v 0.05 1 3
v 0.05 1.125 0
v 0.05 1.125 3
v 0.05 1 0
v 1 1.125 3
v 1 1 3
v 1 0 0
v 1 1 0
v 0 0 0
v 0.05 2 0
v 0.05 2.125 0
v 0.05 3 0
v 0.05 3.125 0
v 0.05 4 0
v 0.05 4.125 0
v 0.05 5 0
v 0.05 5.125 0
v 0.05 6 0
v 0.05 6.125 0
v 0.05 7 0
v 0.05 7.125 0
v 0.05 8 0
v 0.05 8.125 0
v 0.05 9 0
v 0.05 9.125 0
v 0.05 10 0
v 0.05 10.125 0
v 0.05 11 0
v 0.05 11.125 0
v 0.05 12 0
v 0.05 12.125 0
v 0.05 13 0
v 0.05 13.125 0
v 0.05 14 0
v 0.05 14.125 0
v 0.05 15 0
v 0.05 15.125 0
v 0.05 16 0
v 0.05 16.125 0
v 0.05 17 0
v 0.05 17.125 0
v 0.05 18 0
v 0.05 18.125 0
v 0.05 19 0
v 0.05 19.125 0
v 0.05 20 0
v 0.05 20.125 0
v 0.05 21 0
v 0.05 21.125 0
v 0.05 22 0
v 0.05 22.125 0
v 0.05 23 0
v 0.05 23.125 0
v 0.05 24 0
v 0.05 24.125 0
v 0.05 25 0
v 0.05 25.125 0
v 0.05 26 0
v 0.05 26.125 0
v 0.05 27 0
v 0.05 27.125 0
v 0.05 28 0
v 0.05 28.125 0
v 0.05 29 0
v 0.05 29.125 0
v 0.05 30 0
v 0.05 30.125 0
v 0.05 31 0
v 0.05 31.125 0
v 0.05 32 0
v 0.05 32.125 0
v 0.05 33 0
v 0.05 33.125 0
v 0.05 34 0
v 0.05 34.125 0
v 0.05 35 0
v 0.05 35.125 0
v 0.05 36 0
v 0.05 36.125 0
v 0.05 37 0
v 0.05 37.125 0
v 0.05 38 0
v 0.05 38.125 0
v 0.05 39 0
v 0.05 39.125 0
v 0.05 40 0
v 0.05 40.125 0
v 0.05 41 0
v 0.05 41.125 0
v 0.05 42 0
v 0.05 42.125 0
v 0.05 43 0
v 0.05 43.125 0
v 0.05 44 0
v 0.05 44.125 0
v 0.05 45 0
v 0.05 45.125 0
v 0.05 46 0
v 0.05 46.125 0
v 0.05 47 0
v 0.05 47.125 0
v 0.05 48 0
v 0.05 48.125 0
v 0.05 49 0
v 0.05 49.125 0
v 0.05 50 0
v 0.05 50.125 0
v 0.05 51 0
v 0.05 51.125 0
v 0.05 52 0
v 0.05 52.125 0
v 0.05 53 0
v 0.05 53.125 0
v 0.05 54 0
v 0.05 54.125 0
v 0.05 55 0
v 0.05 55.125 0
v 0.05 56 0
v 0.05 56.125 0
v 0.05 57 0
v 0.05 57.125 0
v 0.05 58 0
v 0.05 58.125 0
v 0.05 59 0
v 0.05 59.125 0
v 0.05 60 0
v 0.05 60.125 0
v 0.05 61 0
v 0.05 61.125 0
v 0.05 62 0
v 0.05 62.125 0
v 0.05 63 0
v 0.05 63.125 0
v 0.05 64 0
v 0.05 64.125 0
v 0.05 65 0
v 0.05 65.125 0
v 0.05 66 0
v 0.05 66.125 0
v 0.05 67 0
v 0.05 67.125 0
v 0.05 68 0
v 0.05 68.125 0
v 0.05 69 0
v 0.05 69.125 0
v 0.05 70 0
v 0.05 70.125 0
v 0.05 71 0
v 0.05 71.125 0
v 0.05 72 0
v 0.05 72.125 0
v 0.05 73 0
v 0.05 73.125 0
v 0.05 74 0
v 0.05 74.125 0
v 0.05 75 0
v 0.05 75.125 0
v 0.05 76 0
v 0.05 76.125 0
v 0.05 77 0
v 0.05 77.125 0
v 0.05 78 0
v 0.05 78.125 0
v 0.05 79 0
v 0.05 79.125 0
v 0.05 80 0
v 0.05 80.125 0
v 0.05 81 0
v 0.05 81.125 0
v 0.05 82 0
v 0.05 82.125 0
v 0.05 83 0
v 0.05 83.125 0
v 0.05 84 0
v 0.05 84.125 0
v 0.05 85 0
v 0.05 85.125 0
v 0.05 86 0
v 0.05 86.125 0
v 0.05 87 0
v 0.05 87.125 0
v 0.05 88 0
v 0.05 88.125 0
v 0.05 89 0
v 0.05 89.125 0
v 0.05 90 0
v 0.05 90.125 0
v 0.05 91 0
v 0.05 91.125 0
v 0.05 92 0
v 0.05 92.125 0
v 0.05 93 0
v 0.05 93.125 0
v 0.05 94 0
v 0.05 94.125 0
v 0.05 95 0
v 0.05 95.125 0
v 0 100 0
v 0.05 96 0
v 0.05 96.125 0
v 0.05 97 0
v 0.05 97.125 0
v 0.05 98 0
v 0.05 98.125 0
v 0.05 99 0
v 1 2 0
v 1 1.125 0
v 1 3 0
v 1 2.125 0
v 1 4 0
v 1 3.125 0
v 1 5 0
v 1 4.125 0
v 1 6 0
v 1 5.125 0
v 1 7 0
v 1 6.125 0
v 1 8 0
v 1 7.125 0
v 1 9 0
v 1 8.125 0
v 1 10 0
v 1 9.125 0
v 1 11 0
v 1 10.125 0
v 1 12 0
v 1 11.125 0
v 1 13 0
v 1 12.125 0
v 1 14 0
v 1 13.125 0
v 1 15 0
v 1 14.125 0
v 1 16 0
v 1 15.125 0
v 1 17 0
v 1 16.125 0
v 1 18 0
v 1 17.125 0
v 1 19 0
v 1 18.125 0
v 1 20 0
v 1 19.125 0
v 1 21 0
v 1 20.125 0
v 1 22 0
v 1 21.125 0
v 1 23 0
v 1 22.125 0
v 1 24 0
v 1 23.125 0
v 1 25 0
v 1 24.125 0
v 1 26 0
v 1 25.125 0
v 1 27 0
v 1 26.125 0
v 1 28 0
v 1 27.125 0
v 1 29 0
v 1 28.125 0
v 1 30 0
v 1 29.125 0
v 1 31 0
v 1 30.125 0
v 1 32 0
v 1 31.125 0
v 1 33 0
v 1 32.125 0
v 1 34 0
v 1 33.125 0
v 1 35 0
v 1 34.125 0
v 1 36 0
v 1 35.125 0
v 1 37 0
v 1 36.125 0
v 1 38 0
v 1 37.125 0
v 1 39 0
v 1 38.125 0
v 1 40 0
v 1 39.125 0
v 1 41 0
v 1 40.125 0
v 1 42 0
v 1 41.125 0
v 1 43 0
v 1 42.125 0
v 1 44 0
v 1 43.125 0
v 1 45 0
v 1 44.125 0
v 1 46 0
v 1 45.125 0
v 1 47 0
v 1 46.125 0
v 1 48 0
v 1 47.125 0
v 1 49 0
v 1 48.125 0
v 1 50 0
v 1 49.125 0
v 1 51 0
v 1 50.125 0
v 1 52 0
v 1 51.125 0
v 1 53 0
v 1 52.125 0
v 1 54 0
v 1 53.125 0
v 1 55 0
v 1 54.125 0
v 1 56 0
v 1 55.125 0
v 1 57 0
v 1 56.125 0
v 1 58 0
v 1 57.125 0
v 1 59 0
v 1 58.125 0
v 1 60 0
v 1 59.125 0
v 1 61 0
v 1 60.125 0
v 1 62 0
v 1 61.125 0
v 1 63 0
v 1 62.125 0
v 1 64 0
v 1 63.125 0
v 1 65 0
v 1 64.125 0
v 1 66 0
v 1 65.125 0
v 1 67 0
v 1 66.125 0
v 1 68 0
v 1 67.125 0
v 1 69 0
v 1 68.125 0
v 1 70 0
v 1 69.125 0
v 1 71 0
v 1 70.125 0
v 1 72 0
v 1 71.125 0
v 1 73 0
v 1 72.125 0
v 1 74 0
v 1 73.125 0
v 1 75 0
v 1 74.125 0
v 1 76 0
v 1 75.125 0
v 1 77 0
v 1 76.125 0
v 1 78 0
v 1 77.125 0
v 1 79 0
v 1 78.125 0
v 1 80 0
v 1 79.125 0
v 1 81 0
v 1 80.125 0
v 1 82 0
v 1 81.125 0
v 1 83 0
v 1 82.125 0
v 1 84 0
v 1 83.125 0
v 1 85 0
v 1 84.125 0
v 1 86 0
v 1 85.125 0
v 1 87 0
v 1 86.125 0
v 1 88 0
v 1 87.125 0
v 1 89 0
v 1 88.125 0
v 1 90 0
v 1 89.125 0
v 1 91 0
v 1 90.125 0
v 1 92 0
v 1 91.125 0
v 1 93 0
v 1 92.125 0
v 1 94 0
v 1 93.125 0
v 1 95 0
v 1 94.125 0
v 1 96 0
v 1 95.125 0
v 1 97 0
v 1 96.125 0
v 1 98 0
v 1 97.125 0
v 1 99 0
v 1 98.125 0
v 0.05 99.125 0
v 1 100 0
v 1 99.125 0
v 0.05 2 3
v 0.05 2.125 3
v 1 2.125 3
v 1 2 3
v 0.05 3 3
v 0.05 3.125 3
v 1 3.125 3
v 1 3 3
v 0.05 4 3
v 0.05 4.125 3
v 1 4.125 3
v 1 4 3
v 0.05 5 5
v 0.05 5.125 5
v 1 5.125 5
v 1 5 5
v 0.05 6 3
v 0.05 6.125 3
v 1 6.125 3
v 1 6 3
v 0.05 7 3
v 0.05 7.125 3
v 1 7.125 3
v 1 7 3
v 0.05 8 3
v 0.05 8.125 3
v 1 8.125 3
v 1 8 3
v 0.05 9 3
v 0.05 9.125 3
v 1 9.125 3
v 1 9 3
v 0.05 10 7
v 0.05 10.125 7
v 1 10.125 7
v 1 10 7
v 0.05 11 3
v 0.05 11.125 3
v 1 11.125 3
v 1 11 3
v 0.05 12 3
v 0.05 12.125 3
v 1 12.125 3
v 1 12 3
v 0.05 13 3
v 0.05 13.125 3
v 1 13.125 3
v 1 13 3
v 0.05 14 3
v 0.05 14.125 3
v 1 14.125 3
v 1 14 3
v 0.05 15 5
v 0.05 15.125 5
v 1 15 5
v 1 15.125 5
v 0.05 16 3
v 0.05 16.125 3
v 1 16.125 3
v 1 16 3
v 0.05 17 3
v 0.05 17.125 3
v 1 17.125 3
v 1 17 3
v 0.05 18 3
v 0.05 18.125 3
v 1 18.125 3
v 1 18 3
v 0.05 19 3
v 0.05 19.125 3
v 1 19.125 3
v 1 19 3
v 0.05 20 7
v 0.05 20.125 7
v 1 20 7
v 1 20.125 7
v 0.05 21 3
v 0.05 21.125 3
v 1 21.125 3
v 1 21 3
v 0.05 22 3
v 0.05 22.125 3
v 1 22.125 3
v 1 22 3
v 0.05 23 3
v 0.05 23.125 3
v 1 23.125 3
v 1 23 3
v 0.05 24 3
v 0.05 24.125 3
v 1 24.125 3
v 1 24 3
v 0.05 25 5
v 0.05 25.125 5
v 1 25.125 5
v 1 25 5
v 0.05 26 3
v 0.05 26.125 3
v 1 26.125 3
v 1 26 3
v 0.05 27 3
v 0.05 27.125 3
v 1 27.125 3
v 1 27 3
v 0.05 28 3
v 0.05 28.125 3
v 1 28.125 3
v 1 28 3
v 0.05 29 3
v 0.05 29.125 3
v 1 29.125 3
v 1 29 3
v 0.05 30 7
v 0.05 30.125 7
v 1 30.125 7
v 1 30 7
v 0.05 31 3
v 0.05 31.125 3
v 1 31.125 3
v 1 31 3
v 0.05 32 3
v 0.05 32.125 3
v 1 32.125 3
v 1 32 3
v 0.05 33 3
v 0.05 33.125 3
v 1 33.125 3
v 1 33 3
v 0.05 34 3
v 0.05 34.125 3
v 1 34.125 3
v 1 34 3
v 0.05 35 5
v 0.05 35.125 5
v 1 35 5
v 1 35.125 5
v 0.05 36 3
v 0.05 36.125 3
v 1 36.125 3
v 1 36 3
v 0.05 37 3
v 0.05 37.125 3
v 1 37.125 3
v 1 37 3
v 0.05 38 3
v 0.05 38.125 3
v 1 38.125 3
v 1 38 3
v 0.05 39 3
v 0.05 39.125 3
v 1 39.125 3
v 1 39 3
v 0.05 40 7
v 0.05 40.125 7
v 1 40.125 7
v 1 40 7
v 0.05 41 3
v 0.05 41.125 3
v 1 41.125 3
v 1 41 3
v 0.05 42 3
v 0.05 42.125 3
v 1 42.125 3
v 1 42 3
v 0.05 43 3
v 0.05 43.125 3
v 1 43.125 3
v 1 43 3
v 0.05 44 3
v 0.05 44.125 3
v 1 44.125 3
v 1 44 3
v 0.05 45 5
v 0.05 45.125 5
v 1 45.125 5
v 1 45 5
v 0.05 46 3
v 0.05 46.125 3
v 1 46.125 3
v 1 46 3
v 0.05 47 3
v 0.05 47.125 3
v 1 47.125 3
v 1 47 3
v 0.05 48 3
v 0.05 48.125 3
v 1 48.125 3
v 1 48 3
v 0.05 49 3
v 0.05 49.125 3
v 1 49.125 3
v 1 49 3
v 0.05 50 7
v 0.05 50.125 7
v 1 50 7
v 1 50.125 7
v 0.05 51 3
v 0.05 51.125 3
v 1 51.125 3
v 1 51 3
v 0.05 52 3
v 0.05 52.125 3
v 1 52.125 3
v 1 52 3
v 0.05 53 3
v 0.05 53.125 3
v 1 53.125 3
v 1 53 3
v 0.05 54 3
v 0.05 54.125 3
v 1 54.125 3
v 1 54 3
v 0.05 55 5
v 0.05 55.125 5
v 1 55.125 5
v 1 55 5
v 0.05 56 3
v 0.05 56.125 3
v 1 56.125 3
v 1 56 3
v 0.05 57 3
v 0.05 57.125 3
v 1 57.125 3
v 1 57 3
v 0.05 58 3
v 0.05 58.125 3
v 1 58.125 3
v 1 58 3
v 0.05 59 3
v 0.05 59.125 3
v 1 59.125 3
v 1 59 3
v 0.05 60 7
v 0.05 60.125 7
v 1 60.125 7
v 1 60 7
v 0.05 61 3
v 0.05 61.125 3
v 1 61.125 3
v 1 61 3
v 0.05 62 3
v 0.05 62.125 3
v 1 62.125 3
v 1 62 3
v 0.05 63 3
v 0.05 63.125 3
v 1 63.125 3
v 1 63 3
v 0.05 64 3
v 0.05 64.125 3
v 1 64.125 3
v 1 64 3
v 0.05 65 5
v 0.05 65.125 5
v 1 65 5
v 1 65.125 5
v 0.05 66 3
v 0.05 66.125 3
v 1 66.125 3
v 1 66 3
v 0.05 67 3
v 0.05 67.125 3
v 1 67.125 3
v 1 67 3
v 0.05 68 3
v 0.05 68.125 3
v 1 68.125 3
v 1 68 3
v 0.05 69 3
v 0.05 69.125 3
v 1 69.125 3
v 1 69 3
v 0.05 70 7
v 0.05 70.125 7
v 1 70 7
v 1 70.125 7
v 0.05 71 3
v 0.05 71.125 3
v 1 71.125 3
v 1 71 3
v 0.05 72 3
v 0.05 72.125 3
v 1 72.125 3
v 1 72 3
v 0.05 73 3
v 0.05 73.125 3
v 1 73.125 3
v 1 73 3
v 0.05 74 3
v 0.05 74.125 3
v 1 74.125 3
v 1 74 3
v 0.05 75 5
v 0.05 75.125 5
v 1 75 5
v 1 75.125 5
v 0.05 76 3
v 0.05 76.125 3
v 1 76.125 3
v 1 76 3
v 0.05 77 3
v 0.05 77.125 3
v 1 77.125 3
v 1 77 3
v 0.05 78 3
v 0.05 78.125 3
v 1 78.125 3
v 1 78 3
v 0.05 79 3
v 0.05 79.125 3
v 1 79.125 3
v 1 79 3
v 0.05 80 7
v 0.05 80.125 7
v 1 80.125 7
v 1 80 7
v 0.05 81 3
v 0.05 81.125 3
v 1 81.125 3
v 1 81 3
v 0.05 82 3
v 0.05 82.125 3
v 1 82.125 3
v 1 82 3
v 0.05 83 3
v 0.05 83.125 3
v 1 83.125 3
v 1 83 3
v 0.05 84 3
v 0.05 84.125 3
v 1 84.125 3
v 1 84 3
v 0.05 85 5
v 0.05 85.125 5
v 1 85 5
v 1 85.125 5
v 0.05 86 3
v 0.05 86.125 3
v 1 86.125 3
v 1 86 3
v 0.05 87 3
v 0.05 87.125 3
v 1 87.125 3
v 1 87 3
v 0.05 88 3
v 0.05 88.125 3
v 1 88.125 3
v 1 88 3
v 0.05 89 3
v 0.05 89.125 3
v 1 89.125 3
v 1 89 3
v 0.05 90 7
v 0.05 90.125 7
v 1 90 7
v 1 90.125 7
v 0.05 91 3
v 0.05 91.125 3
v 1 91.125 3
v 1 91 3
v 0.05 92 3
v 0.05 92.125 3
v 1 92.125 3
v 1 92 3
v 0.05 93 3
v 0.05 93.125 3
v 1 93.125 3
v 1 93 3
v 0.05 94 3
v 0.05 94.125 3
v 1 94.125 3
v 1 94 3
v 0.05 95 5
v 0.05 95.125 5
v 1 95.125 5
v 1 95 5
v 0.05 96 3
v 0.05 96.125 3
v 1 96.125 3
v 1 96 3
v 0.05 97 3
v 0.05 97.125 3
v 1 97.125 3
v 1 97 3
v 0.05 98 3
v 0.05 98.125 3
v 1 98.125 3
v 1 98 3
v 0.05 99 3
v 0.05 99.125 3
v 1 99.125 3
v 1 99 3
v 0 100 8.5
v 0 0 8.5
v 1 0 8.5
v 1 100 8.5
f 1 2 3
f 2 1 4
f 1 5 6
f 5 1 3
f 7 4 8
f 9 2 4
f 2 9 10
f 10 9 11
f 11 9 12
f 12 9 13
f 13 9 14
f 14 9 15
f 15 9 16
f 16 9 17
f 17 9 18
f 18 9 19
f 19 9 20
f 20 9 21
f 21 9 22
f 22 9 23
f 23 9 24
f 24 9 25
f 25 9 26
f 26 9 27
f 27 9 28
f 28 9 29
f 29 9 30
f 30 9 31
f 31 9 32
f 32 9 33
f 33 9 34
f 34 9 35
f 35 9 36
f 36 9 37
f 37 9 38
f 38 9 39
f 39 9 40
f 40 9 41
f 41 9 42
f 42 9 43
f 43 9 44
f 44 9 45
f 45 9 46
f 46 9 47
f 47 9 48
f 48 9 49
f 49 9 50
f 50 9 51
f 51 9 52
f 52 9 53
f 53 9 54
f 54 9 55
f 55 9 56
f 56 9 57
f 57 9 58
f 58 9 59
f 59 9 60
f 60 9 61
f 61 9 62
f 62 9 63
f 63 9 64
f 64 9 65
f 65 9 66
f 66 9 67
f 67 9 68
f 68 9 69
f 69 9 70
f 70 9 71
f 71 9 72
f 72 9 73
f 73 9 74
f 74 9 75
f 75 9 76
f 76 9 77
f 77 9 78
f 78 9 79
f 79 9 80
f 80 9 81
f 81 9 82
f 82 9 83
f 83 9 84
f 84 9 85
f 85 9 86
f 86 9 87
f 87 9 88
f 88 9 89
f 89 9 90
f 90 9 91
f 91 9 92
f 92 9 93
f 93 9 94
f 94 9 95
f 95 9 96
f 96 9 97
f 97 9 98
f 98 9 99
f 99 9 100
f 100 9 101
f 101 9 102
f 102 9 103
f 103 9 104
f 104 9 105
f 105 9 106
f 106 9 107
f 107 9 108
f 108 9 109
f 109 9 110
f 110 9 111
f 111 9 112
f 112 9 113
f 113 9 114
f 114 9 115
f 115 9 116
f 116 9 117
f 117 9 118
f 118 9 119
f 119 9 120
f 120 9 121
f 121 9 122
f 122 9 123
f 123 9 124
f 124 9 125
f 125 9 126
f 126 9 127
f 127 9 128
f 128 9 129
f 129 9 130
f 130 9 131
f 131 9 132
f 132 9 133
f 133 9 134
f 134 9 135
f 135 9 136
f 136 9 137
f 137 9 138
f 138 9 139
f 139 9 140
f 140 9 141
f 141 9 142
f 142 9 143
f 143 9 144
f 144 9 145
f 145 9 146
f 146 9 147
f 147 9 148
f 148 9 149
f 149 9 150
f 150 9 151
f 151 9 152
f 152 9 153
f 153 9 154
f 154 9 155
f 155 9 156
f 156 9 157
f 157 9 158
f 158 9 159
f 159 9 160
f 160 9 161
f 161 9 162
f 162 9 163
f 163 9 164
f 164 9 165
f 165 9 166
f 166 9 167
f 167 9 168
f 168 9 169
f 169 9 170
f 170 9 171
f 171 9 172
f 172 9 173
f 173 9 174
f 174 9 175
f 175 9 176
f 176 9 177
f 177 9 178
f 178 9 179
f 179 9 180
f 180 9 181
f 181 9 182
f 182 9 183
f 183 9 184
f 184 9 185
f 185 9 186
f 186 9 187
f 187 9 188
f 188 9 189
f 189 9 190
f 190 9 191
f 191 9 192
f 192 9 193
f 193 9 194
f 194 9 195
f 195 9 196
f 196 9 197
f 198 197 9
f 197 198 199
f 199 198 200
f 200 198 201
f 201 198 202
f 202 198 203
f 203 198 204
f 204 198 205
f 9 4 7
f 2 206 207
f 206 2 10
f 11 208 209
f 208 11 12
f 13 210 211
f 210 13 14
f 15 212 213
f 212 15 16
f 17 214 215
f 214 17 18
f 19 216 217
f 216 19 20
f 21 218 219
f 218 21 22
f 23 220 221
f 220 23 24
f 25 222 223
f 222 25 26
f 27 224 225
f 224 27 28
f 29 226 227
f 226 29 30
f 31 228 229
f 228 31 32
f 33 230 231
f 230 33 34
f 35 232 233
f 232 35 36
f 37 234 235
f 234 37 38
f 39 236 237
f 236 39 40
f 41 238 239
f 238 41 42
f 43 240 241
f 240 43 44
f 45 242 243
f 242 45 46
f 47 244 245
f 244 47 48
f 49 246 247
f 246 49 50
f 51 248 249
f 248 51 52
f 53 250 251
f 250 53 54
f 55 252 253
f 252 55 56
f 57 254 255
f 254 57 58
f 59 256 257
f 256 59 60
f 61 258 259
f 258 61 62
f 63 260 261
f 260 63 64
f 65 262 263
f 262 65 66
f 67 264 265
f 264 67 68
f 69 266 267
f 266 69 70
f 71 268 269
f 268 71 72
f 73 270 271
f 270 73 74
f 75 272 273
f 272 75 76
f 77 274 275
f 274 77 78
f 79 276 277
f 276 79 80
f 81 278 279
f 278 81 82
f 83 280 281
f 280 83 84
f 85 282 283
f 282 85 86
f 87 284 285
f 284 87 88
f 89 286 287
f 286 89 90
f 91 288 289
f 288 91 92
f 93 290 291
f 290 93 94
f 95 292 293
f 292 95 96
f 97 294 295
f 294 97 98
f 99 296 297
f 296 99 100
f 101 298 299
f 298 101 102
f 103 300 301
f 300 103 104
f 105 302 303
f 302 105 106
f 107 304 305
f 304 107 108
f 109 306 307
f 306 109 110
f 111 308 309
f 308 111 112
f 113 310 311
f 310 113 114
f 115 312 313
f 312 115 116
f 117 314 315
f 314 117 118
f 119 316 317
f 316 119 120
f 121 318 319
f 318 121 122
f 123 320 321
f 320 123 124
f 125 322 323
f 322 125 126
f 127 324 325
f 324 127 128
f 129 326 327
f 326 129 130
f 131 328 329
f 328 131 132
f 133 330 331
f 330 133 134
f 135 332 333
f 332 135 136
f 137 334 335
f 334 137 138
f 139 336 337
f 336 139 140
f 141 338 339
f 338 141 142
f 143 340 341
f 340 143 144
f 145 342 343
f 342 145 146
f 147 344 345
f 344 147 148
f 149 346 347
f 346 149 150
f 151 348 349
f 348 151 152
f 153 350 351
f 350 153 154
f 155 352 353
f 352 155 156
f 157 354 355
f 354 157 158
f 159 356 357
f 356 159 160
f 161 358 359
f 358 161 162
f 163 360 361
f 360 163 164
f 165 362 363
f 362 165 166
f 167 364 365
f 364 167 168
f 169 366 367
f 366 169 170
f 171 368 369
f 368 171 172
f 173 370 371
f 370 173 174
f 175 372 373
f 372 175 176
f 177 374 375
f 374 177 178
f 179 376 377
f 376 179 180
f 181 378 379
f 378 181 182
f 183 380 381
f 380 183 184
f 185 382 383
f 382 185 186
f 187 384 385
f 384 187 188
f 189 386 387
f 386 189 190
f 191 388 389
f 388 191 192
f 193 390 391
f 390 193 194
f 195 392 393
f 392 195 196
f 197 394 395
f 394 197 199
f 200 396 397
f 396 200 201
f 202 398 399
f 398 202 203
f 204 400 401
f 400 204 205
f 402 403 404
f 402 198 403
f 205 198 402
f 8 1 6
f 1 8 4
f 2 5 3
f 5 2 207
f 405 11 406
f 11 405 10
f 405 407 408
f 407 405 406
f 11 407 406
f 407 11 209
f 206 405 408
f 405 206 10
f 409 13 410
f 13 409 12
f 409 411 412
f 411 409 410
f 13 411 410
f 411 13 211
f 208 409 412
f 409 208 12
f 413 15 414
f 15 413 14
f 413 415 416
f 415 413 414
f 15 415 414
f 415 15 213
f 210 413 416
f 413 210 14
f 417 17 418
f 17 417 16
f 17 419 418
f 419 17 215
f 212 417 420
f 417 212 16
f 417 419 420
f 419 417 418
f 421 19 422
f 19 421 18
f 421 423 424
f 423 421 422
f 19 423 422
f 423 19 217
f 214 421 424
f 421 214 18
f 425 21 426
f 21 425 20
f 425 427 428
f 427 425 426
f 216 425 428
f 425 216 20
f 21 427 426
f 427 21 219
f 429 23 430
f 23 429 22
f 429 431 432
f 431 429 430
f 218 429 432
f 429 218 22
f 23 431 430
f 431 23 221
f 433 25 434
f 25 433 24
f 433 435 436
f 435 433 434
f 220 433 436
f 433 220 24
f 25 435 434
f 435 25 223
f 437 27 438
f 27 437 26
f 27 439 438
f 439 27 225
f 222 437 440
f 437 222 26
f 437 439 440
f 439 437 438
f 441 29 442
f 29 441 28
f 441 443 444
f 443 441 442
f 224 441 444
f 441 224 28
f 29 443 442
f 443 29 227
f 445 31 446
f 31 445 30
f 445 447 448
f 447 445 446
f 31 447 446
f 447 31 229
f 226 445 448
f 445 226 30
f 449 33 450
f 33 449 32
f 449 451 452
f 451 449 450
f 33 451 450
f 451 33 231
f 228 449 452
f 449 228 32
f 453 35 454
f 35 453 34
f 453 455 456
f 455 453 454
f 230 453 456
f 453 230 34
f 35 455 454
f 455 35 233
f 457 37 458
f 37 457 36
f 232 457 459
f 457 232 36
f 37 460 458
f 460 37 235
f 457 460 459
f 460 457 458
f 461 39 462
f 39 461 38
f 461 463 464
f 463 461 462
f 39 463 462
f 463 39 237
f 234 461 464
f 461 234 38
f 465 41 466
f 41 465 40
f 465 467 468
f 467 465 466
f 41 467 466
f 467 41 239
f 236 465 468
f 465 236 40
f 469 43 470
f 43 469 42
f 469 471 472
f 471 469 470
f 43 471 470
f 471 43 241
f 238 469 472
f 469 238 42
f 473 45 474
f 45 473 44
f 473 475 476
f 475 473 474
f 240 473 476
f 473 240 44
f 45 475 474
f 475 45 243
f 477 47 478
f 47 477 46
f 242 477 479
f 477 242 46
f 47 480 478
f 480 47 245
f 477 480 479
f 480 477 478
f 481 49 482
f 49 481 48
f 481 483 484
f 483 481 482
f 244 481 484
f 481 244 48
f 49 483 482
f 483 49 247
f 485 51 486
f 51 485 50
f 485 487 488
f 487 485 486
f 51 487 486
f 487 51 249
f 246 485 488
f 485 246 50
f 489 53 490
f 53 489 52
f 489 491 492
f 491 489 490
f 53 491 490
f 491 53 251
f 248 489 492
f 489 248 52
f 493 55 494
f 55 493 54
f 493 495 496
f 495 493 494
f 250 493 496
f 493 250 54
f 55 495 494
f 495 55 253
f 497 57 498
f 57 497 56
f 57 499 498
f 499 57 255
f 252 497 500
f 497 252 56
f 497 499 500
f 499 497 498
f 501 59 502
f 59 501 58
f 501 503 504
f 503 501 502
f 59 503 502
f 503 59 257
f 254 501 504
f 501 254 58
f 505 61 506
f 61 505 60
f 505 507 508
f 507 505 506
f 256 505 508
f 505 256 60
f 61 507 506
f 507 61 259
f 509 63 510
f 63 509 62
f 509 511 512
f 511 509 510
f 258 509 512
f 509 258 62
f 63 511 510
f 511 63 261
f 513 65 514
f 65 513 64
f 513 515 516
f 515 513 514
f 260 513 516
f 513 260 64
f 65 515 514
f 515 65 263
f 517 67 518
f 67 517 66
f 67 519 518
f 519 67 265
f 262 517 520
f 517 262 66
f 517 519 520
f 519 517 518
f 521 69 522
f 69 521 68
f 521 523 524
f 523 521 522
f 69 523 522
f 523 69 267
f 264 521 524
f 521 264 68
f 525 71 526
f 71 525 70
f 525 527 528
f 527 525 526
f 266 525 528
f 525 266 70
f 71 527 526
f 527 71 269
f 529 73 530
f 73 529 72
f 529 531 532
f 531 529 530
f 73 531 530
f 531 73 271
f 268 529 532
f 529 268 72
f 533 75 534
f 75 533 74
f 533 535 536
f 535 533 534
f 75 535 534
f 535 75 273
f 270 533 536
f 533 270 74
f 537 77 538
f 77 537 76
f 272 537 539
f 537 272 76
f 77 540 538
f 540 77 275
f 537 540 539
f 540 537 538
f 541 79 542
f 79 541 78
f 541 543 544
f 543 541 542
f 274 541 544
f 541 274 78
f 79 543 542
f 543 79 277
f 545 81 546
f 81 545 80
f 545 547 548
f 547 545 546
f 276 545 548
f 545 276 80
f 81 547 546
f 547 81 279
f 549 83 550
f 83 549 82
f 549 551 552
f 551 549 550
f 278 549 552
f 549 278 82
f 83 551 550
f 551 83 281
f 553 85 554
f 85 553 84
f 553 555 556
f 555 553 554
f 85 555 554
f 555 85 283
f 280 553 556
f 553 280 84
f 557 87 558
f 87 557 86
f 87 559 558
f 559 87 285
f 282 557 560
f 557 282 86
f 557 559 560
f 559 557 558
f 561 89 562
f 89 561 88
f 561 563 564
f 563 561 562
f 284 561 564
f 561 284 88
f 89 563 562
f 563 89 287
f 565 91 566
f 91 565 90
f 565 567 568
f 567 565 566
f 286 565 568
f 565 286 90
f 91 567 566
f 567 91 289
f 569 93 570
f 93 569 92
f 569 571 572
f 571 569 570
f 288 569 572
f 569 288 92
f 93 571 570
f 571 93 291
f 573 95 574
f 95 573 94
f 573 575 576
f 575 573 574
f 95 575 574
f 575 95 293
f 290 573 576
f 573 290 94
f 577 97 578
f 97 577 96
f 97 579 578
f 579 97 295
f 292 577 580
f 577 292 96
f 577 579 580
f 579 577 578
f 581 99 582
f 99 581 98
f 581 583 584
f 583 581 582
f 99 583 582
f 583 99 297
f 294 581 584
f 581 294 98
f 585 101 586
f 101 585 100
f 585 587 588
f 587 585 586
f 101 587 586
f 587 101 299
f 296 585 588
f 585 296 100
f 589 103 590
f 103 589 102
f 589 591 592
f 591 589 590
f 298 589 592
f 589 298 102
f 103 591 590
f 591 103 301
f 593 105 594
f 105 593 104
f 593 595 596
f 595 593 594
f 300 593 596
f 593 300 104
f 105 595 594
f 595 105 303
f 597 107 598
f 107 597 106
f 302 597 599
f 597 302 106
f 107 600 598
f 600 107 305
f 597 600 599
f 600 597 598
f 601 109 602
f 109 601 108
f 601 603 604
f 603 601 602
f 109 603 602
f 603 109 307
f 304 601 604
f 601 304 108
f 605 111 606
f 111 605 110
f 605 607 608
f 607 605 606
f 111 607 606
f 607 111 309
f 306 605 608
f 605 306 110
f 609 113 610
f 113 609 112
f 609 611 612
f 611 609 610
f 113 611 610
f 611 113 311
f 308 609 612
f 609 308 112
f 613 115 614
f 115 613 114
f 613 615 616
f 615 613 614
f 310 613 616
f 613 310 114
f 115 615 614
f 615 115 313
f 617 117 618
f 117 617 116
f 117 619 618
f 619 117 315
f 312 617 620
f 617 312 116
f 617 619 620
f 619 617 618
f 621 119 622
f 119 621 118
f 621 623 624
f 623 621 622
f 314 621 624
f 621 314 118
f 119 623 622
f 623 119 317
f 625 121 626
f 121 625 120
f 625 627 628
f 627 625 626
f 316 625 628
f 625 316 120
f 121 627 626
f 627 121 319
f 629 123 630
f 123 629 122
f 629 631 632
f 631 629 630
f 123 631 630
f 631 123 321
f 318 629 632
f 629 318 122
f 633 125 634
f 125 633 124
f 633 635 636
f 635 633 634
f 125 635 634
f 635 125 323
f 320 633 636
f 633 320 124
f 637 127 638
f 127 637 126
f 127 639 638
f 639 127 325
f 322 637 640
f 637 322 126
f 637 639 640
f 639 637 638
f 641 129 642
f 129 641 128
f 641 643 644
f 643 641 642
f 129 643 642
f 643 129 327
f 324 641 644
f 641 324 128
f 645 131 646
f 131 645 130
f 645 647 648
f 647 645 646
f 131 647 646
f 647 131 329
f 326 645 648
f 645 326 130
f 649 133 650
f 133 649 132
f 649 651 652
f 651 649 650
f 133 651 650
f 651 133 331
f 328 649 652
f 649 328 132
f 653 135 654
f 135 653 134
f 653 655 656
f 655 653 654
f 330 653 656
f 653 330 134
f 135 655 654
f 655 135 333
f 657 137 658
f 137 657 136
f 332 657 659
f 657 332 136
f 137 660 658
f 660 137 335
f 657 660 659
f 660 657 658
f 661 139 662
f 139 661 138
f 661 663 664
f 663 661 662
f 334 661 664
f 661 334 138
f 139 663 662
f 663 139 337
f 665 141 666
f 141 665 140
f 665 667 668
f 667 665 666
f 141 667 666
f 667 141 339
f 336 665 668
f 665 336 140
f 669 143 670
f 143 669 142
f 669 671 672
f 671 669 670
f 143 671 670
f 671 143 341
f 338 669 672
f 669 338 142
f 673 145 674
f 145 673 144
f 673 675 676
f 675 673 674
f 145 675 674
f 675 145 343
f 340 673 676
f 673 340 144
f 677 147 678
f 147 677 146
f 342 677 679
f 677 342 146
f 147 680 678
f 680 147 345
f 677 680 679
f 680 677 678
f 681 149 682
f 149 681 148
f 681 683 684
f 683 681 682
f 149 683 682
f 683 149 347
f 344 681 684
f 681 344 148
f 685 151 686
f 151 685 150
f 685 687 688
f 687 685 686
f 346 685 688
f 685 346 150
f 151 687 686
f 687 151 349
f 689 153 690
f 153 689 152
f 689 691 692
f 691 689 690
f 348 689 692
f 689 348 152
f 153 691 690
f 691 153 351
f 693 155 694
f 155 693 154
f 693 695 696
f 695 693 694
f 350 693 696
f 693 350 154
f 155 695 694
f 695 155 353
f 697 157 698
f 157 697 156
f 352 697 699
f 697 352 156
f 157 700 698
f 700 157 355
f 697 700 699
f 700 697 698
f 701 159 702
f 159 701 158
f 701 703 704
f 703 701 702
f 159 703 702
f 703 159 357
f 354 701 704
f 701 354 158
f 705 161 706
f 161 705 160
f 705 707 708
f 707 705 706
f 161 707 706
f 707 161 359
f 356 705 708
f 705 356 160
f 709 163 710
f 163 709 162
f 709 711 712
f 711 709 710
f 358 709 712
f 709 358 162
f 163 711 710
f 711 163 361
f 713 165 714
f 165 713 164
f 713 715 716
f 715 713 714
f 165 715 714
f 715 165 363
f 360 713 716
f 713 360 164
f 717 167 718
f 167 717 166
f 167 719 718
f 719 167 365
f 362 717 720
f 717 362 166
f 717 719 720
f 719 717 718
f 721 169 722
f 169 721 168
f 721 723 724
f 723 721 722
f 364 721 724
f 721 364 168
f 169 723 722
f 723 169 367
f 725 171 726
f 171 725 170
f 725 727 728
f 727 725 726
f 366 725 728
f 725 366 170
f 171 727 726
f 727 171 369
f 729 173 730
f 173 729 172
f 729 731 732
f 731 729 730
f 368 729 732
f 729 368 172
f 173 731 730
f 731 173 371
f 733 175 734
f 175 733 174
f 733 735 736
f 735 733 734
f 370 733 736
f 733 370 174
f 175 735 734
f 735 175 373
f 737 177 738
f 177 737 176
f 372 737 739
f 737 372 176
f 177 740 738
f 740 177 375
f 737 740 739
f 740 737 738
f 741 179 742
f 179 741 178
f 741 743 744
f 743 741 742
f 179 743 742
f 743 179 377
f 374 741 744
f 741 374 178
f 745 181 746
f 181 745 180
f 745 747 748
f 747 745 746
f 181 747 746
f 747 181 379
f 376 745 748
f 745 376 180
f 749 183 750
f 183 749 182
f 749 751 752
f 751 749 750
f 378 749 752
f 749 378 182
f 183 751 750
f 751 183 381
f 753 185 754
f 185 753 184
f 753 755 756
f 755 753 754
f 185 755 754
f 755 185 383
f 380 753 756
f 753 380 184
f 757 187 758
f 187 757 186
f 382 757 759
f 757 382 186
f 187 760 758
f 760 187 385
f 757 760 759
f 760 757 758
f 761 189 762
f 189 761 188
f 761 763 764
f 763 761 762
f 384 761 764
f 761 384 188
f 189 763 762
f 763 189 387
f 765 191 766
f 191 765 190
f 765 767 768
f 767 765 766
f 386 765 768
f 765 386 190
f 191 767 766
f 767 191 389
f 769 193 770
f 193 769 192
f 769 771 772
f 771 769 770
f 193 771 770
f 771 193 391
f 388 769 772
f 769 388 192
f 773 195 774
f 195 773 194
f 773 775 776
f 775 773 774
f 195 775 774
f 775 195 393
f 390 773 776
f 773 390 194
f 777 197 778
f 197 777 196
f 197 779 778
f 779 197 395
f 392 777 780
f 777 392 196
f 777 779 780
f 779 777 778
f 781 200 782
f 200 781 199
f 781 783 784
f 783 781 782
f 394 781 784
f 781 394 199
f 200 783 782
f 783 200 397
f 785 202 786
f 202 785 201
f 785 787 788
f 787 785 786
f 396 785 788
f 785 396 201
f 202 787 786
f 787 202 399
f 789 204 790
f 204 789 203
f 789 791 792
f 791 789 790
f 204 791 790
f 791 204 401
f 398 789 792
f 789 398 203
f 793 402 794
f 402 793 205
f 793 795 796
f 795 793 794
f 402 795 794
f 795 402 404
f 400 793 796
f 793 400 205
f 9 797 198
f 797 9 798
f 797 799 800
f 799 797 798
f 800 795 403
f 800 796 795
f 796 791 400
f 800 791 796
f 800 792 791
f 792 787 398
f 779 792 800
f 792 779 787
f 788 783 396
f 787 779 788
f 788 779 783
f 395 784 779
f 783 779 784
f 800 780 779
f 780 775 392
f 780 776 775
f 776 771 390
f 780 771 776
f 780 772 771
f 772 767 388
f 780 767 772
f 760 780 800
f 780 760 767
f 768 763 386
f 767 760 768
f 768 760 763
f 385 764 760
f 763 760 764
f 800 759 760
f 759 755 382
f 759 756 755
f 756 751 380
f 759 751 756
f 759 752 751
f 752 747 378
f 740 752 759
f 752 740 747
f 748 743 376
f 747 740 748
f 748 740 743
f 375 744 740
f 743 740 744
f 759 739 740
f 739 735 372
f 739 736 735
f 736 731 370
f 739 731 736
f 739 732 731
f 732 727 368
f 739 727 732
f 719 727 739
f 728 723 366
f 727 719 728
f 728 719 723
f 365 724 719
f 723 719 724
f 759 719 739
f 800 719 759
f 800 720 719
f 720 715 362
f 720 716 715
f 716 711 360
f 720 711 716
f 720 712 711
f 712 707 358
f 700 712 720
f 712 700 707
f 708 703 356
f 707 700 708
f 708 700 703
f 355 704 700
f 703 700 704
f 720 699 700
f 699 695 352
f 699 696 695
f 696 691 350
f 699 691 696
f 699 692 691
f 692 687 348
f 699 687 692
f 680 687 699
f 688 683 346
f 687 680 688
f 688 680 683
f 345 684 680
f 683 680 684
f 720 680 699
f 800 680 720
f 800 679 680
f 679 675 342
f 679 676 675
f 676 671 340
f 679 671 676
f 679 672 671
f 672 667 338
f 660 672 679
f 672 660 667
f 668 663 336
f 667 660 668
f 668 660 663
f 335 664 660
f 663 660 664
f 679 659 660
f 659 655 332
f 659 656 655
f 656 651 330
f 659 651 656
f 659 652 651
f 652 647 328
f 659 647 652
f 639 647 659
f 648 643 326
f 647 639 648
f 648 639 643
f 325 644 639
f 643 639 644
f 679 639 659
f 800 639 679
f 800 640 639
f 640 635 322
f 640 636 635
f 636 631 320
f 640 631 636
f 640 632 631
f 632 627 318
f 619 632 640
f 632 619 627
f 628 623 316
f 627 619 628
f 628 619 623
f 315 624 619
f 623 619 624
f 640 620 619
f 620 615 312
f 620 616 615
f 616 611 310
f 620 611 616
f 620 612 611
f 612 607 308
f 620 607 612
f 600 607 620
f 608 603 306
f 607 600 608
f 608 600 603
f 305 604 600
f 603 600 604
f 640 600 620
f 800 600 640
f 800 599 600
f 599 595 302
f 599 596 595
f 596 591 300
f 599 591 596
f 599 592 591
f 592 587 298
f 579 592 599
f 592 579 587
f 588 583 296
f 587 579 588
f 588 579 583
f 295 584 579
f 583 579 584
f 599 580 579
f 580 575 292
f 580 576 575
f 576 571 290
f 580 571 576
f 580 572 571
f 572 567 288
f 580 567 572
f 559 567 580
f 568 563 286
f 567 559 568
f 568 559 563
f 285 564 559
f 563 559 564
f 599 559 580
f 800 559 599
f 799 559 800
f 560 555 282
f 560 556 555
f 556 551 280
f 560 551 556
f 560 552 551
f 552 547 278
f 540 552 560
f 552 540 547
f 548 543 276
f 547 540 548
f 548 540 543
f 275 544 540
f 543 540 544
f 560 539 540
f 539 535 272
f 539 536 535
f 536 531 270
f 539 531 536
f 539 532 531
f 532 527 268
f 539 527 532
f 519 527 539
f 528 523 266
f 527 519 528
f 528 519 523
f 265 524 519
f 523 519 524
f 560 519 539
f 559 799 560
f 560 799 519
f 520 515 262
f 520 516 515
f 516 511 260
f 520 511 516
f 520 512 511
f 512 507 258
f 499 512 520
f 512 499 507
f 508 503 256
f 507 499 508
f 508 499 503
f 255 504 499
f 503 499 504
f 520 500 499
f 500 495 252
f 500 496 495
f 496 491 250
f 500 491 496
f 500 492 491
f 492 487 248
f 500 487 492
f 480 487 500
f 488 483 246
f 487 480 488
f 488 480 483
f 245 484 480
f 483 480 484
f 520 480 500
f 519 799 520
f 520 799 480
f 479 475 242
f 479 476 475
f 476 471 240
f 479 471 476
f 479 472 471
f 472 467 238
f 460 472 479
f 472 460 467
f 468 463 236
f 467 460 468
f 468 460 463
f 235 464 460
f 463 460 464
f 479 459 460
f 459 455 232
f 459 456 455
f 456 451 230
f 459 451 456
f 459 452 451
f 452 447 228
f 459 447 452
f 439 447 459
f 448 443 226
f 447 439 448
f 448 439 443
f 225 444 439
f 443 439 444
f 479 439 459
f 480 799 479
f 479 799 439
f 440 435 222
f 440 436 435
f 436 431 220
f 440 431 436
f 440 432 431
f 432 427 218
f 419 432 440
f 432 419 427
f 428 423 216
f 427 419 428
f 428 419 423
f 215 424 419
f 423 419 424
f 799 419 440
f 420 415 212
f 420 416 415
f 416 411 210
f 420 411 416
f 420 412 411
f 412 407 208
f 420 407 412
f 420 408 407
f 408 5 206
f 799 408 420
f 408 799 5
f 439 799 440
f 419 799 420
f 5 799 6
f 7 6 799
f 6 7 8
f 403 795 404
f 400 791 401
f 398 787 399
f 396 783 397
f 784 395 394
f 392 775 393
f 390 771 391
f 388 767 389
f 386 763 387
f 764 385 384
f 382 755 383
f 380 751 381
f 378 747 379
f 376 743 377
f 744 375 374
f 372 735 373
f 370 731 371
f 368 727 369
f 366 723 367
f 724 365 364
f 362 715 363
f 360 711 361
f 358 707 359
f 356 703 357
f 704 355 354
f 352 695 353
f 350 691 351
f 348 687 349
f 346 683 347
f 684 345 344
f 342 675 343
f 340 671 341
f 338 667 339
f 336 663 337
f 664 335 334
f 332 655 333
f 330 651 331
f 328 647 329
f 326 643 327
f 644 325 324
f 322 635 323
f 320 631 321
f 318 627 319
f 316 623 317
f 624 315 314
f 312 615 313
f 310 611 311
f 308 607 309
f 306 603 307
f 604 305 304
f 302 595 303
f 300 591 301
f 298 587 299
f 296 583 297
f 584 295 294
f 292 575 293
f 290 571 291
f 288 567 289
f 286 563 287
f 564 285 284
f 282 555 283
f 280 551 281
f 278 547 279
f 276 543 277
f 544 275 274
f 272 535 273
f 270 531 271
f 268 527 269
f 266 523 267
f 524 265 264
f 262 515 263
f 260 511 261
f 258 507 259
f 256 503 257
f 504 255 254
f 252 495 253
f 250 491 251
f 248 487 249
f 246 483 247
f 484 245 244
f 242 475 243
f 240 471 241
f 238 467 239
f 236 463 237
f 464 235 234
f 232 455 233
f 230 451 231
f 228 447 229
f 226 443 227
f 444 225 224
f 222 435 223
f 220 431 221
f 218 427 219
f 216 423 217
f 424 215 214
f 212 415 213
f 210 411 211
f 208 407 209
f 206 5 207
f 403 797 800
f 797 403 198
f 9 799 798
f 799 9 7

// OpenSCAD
/*Righello della lunghezza desiderata con sensibilità di 1mm*/
l=100; //lunghezza in mm
difference()
{
    cube([1, l, 8.5 ]);
    for (i = [1:l-1])
    {
        translate([0.05, i, 0]) cube([1, 0.125, 3 ]);
        if (i % 5 == 0)
        {
            translate([0.05, i, 0]) cube([5, 0.125, 5 ]);
        }
        if (i % 10 == 0)
        {
            translate([0.05, i, 0]) cube([10, 0.125, 7 ]);
        }
    }
}
